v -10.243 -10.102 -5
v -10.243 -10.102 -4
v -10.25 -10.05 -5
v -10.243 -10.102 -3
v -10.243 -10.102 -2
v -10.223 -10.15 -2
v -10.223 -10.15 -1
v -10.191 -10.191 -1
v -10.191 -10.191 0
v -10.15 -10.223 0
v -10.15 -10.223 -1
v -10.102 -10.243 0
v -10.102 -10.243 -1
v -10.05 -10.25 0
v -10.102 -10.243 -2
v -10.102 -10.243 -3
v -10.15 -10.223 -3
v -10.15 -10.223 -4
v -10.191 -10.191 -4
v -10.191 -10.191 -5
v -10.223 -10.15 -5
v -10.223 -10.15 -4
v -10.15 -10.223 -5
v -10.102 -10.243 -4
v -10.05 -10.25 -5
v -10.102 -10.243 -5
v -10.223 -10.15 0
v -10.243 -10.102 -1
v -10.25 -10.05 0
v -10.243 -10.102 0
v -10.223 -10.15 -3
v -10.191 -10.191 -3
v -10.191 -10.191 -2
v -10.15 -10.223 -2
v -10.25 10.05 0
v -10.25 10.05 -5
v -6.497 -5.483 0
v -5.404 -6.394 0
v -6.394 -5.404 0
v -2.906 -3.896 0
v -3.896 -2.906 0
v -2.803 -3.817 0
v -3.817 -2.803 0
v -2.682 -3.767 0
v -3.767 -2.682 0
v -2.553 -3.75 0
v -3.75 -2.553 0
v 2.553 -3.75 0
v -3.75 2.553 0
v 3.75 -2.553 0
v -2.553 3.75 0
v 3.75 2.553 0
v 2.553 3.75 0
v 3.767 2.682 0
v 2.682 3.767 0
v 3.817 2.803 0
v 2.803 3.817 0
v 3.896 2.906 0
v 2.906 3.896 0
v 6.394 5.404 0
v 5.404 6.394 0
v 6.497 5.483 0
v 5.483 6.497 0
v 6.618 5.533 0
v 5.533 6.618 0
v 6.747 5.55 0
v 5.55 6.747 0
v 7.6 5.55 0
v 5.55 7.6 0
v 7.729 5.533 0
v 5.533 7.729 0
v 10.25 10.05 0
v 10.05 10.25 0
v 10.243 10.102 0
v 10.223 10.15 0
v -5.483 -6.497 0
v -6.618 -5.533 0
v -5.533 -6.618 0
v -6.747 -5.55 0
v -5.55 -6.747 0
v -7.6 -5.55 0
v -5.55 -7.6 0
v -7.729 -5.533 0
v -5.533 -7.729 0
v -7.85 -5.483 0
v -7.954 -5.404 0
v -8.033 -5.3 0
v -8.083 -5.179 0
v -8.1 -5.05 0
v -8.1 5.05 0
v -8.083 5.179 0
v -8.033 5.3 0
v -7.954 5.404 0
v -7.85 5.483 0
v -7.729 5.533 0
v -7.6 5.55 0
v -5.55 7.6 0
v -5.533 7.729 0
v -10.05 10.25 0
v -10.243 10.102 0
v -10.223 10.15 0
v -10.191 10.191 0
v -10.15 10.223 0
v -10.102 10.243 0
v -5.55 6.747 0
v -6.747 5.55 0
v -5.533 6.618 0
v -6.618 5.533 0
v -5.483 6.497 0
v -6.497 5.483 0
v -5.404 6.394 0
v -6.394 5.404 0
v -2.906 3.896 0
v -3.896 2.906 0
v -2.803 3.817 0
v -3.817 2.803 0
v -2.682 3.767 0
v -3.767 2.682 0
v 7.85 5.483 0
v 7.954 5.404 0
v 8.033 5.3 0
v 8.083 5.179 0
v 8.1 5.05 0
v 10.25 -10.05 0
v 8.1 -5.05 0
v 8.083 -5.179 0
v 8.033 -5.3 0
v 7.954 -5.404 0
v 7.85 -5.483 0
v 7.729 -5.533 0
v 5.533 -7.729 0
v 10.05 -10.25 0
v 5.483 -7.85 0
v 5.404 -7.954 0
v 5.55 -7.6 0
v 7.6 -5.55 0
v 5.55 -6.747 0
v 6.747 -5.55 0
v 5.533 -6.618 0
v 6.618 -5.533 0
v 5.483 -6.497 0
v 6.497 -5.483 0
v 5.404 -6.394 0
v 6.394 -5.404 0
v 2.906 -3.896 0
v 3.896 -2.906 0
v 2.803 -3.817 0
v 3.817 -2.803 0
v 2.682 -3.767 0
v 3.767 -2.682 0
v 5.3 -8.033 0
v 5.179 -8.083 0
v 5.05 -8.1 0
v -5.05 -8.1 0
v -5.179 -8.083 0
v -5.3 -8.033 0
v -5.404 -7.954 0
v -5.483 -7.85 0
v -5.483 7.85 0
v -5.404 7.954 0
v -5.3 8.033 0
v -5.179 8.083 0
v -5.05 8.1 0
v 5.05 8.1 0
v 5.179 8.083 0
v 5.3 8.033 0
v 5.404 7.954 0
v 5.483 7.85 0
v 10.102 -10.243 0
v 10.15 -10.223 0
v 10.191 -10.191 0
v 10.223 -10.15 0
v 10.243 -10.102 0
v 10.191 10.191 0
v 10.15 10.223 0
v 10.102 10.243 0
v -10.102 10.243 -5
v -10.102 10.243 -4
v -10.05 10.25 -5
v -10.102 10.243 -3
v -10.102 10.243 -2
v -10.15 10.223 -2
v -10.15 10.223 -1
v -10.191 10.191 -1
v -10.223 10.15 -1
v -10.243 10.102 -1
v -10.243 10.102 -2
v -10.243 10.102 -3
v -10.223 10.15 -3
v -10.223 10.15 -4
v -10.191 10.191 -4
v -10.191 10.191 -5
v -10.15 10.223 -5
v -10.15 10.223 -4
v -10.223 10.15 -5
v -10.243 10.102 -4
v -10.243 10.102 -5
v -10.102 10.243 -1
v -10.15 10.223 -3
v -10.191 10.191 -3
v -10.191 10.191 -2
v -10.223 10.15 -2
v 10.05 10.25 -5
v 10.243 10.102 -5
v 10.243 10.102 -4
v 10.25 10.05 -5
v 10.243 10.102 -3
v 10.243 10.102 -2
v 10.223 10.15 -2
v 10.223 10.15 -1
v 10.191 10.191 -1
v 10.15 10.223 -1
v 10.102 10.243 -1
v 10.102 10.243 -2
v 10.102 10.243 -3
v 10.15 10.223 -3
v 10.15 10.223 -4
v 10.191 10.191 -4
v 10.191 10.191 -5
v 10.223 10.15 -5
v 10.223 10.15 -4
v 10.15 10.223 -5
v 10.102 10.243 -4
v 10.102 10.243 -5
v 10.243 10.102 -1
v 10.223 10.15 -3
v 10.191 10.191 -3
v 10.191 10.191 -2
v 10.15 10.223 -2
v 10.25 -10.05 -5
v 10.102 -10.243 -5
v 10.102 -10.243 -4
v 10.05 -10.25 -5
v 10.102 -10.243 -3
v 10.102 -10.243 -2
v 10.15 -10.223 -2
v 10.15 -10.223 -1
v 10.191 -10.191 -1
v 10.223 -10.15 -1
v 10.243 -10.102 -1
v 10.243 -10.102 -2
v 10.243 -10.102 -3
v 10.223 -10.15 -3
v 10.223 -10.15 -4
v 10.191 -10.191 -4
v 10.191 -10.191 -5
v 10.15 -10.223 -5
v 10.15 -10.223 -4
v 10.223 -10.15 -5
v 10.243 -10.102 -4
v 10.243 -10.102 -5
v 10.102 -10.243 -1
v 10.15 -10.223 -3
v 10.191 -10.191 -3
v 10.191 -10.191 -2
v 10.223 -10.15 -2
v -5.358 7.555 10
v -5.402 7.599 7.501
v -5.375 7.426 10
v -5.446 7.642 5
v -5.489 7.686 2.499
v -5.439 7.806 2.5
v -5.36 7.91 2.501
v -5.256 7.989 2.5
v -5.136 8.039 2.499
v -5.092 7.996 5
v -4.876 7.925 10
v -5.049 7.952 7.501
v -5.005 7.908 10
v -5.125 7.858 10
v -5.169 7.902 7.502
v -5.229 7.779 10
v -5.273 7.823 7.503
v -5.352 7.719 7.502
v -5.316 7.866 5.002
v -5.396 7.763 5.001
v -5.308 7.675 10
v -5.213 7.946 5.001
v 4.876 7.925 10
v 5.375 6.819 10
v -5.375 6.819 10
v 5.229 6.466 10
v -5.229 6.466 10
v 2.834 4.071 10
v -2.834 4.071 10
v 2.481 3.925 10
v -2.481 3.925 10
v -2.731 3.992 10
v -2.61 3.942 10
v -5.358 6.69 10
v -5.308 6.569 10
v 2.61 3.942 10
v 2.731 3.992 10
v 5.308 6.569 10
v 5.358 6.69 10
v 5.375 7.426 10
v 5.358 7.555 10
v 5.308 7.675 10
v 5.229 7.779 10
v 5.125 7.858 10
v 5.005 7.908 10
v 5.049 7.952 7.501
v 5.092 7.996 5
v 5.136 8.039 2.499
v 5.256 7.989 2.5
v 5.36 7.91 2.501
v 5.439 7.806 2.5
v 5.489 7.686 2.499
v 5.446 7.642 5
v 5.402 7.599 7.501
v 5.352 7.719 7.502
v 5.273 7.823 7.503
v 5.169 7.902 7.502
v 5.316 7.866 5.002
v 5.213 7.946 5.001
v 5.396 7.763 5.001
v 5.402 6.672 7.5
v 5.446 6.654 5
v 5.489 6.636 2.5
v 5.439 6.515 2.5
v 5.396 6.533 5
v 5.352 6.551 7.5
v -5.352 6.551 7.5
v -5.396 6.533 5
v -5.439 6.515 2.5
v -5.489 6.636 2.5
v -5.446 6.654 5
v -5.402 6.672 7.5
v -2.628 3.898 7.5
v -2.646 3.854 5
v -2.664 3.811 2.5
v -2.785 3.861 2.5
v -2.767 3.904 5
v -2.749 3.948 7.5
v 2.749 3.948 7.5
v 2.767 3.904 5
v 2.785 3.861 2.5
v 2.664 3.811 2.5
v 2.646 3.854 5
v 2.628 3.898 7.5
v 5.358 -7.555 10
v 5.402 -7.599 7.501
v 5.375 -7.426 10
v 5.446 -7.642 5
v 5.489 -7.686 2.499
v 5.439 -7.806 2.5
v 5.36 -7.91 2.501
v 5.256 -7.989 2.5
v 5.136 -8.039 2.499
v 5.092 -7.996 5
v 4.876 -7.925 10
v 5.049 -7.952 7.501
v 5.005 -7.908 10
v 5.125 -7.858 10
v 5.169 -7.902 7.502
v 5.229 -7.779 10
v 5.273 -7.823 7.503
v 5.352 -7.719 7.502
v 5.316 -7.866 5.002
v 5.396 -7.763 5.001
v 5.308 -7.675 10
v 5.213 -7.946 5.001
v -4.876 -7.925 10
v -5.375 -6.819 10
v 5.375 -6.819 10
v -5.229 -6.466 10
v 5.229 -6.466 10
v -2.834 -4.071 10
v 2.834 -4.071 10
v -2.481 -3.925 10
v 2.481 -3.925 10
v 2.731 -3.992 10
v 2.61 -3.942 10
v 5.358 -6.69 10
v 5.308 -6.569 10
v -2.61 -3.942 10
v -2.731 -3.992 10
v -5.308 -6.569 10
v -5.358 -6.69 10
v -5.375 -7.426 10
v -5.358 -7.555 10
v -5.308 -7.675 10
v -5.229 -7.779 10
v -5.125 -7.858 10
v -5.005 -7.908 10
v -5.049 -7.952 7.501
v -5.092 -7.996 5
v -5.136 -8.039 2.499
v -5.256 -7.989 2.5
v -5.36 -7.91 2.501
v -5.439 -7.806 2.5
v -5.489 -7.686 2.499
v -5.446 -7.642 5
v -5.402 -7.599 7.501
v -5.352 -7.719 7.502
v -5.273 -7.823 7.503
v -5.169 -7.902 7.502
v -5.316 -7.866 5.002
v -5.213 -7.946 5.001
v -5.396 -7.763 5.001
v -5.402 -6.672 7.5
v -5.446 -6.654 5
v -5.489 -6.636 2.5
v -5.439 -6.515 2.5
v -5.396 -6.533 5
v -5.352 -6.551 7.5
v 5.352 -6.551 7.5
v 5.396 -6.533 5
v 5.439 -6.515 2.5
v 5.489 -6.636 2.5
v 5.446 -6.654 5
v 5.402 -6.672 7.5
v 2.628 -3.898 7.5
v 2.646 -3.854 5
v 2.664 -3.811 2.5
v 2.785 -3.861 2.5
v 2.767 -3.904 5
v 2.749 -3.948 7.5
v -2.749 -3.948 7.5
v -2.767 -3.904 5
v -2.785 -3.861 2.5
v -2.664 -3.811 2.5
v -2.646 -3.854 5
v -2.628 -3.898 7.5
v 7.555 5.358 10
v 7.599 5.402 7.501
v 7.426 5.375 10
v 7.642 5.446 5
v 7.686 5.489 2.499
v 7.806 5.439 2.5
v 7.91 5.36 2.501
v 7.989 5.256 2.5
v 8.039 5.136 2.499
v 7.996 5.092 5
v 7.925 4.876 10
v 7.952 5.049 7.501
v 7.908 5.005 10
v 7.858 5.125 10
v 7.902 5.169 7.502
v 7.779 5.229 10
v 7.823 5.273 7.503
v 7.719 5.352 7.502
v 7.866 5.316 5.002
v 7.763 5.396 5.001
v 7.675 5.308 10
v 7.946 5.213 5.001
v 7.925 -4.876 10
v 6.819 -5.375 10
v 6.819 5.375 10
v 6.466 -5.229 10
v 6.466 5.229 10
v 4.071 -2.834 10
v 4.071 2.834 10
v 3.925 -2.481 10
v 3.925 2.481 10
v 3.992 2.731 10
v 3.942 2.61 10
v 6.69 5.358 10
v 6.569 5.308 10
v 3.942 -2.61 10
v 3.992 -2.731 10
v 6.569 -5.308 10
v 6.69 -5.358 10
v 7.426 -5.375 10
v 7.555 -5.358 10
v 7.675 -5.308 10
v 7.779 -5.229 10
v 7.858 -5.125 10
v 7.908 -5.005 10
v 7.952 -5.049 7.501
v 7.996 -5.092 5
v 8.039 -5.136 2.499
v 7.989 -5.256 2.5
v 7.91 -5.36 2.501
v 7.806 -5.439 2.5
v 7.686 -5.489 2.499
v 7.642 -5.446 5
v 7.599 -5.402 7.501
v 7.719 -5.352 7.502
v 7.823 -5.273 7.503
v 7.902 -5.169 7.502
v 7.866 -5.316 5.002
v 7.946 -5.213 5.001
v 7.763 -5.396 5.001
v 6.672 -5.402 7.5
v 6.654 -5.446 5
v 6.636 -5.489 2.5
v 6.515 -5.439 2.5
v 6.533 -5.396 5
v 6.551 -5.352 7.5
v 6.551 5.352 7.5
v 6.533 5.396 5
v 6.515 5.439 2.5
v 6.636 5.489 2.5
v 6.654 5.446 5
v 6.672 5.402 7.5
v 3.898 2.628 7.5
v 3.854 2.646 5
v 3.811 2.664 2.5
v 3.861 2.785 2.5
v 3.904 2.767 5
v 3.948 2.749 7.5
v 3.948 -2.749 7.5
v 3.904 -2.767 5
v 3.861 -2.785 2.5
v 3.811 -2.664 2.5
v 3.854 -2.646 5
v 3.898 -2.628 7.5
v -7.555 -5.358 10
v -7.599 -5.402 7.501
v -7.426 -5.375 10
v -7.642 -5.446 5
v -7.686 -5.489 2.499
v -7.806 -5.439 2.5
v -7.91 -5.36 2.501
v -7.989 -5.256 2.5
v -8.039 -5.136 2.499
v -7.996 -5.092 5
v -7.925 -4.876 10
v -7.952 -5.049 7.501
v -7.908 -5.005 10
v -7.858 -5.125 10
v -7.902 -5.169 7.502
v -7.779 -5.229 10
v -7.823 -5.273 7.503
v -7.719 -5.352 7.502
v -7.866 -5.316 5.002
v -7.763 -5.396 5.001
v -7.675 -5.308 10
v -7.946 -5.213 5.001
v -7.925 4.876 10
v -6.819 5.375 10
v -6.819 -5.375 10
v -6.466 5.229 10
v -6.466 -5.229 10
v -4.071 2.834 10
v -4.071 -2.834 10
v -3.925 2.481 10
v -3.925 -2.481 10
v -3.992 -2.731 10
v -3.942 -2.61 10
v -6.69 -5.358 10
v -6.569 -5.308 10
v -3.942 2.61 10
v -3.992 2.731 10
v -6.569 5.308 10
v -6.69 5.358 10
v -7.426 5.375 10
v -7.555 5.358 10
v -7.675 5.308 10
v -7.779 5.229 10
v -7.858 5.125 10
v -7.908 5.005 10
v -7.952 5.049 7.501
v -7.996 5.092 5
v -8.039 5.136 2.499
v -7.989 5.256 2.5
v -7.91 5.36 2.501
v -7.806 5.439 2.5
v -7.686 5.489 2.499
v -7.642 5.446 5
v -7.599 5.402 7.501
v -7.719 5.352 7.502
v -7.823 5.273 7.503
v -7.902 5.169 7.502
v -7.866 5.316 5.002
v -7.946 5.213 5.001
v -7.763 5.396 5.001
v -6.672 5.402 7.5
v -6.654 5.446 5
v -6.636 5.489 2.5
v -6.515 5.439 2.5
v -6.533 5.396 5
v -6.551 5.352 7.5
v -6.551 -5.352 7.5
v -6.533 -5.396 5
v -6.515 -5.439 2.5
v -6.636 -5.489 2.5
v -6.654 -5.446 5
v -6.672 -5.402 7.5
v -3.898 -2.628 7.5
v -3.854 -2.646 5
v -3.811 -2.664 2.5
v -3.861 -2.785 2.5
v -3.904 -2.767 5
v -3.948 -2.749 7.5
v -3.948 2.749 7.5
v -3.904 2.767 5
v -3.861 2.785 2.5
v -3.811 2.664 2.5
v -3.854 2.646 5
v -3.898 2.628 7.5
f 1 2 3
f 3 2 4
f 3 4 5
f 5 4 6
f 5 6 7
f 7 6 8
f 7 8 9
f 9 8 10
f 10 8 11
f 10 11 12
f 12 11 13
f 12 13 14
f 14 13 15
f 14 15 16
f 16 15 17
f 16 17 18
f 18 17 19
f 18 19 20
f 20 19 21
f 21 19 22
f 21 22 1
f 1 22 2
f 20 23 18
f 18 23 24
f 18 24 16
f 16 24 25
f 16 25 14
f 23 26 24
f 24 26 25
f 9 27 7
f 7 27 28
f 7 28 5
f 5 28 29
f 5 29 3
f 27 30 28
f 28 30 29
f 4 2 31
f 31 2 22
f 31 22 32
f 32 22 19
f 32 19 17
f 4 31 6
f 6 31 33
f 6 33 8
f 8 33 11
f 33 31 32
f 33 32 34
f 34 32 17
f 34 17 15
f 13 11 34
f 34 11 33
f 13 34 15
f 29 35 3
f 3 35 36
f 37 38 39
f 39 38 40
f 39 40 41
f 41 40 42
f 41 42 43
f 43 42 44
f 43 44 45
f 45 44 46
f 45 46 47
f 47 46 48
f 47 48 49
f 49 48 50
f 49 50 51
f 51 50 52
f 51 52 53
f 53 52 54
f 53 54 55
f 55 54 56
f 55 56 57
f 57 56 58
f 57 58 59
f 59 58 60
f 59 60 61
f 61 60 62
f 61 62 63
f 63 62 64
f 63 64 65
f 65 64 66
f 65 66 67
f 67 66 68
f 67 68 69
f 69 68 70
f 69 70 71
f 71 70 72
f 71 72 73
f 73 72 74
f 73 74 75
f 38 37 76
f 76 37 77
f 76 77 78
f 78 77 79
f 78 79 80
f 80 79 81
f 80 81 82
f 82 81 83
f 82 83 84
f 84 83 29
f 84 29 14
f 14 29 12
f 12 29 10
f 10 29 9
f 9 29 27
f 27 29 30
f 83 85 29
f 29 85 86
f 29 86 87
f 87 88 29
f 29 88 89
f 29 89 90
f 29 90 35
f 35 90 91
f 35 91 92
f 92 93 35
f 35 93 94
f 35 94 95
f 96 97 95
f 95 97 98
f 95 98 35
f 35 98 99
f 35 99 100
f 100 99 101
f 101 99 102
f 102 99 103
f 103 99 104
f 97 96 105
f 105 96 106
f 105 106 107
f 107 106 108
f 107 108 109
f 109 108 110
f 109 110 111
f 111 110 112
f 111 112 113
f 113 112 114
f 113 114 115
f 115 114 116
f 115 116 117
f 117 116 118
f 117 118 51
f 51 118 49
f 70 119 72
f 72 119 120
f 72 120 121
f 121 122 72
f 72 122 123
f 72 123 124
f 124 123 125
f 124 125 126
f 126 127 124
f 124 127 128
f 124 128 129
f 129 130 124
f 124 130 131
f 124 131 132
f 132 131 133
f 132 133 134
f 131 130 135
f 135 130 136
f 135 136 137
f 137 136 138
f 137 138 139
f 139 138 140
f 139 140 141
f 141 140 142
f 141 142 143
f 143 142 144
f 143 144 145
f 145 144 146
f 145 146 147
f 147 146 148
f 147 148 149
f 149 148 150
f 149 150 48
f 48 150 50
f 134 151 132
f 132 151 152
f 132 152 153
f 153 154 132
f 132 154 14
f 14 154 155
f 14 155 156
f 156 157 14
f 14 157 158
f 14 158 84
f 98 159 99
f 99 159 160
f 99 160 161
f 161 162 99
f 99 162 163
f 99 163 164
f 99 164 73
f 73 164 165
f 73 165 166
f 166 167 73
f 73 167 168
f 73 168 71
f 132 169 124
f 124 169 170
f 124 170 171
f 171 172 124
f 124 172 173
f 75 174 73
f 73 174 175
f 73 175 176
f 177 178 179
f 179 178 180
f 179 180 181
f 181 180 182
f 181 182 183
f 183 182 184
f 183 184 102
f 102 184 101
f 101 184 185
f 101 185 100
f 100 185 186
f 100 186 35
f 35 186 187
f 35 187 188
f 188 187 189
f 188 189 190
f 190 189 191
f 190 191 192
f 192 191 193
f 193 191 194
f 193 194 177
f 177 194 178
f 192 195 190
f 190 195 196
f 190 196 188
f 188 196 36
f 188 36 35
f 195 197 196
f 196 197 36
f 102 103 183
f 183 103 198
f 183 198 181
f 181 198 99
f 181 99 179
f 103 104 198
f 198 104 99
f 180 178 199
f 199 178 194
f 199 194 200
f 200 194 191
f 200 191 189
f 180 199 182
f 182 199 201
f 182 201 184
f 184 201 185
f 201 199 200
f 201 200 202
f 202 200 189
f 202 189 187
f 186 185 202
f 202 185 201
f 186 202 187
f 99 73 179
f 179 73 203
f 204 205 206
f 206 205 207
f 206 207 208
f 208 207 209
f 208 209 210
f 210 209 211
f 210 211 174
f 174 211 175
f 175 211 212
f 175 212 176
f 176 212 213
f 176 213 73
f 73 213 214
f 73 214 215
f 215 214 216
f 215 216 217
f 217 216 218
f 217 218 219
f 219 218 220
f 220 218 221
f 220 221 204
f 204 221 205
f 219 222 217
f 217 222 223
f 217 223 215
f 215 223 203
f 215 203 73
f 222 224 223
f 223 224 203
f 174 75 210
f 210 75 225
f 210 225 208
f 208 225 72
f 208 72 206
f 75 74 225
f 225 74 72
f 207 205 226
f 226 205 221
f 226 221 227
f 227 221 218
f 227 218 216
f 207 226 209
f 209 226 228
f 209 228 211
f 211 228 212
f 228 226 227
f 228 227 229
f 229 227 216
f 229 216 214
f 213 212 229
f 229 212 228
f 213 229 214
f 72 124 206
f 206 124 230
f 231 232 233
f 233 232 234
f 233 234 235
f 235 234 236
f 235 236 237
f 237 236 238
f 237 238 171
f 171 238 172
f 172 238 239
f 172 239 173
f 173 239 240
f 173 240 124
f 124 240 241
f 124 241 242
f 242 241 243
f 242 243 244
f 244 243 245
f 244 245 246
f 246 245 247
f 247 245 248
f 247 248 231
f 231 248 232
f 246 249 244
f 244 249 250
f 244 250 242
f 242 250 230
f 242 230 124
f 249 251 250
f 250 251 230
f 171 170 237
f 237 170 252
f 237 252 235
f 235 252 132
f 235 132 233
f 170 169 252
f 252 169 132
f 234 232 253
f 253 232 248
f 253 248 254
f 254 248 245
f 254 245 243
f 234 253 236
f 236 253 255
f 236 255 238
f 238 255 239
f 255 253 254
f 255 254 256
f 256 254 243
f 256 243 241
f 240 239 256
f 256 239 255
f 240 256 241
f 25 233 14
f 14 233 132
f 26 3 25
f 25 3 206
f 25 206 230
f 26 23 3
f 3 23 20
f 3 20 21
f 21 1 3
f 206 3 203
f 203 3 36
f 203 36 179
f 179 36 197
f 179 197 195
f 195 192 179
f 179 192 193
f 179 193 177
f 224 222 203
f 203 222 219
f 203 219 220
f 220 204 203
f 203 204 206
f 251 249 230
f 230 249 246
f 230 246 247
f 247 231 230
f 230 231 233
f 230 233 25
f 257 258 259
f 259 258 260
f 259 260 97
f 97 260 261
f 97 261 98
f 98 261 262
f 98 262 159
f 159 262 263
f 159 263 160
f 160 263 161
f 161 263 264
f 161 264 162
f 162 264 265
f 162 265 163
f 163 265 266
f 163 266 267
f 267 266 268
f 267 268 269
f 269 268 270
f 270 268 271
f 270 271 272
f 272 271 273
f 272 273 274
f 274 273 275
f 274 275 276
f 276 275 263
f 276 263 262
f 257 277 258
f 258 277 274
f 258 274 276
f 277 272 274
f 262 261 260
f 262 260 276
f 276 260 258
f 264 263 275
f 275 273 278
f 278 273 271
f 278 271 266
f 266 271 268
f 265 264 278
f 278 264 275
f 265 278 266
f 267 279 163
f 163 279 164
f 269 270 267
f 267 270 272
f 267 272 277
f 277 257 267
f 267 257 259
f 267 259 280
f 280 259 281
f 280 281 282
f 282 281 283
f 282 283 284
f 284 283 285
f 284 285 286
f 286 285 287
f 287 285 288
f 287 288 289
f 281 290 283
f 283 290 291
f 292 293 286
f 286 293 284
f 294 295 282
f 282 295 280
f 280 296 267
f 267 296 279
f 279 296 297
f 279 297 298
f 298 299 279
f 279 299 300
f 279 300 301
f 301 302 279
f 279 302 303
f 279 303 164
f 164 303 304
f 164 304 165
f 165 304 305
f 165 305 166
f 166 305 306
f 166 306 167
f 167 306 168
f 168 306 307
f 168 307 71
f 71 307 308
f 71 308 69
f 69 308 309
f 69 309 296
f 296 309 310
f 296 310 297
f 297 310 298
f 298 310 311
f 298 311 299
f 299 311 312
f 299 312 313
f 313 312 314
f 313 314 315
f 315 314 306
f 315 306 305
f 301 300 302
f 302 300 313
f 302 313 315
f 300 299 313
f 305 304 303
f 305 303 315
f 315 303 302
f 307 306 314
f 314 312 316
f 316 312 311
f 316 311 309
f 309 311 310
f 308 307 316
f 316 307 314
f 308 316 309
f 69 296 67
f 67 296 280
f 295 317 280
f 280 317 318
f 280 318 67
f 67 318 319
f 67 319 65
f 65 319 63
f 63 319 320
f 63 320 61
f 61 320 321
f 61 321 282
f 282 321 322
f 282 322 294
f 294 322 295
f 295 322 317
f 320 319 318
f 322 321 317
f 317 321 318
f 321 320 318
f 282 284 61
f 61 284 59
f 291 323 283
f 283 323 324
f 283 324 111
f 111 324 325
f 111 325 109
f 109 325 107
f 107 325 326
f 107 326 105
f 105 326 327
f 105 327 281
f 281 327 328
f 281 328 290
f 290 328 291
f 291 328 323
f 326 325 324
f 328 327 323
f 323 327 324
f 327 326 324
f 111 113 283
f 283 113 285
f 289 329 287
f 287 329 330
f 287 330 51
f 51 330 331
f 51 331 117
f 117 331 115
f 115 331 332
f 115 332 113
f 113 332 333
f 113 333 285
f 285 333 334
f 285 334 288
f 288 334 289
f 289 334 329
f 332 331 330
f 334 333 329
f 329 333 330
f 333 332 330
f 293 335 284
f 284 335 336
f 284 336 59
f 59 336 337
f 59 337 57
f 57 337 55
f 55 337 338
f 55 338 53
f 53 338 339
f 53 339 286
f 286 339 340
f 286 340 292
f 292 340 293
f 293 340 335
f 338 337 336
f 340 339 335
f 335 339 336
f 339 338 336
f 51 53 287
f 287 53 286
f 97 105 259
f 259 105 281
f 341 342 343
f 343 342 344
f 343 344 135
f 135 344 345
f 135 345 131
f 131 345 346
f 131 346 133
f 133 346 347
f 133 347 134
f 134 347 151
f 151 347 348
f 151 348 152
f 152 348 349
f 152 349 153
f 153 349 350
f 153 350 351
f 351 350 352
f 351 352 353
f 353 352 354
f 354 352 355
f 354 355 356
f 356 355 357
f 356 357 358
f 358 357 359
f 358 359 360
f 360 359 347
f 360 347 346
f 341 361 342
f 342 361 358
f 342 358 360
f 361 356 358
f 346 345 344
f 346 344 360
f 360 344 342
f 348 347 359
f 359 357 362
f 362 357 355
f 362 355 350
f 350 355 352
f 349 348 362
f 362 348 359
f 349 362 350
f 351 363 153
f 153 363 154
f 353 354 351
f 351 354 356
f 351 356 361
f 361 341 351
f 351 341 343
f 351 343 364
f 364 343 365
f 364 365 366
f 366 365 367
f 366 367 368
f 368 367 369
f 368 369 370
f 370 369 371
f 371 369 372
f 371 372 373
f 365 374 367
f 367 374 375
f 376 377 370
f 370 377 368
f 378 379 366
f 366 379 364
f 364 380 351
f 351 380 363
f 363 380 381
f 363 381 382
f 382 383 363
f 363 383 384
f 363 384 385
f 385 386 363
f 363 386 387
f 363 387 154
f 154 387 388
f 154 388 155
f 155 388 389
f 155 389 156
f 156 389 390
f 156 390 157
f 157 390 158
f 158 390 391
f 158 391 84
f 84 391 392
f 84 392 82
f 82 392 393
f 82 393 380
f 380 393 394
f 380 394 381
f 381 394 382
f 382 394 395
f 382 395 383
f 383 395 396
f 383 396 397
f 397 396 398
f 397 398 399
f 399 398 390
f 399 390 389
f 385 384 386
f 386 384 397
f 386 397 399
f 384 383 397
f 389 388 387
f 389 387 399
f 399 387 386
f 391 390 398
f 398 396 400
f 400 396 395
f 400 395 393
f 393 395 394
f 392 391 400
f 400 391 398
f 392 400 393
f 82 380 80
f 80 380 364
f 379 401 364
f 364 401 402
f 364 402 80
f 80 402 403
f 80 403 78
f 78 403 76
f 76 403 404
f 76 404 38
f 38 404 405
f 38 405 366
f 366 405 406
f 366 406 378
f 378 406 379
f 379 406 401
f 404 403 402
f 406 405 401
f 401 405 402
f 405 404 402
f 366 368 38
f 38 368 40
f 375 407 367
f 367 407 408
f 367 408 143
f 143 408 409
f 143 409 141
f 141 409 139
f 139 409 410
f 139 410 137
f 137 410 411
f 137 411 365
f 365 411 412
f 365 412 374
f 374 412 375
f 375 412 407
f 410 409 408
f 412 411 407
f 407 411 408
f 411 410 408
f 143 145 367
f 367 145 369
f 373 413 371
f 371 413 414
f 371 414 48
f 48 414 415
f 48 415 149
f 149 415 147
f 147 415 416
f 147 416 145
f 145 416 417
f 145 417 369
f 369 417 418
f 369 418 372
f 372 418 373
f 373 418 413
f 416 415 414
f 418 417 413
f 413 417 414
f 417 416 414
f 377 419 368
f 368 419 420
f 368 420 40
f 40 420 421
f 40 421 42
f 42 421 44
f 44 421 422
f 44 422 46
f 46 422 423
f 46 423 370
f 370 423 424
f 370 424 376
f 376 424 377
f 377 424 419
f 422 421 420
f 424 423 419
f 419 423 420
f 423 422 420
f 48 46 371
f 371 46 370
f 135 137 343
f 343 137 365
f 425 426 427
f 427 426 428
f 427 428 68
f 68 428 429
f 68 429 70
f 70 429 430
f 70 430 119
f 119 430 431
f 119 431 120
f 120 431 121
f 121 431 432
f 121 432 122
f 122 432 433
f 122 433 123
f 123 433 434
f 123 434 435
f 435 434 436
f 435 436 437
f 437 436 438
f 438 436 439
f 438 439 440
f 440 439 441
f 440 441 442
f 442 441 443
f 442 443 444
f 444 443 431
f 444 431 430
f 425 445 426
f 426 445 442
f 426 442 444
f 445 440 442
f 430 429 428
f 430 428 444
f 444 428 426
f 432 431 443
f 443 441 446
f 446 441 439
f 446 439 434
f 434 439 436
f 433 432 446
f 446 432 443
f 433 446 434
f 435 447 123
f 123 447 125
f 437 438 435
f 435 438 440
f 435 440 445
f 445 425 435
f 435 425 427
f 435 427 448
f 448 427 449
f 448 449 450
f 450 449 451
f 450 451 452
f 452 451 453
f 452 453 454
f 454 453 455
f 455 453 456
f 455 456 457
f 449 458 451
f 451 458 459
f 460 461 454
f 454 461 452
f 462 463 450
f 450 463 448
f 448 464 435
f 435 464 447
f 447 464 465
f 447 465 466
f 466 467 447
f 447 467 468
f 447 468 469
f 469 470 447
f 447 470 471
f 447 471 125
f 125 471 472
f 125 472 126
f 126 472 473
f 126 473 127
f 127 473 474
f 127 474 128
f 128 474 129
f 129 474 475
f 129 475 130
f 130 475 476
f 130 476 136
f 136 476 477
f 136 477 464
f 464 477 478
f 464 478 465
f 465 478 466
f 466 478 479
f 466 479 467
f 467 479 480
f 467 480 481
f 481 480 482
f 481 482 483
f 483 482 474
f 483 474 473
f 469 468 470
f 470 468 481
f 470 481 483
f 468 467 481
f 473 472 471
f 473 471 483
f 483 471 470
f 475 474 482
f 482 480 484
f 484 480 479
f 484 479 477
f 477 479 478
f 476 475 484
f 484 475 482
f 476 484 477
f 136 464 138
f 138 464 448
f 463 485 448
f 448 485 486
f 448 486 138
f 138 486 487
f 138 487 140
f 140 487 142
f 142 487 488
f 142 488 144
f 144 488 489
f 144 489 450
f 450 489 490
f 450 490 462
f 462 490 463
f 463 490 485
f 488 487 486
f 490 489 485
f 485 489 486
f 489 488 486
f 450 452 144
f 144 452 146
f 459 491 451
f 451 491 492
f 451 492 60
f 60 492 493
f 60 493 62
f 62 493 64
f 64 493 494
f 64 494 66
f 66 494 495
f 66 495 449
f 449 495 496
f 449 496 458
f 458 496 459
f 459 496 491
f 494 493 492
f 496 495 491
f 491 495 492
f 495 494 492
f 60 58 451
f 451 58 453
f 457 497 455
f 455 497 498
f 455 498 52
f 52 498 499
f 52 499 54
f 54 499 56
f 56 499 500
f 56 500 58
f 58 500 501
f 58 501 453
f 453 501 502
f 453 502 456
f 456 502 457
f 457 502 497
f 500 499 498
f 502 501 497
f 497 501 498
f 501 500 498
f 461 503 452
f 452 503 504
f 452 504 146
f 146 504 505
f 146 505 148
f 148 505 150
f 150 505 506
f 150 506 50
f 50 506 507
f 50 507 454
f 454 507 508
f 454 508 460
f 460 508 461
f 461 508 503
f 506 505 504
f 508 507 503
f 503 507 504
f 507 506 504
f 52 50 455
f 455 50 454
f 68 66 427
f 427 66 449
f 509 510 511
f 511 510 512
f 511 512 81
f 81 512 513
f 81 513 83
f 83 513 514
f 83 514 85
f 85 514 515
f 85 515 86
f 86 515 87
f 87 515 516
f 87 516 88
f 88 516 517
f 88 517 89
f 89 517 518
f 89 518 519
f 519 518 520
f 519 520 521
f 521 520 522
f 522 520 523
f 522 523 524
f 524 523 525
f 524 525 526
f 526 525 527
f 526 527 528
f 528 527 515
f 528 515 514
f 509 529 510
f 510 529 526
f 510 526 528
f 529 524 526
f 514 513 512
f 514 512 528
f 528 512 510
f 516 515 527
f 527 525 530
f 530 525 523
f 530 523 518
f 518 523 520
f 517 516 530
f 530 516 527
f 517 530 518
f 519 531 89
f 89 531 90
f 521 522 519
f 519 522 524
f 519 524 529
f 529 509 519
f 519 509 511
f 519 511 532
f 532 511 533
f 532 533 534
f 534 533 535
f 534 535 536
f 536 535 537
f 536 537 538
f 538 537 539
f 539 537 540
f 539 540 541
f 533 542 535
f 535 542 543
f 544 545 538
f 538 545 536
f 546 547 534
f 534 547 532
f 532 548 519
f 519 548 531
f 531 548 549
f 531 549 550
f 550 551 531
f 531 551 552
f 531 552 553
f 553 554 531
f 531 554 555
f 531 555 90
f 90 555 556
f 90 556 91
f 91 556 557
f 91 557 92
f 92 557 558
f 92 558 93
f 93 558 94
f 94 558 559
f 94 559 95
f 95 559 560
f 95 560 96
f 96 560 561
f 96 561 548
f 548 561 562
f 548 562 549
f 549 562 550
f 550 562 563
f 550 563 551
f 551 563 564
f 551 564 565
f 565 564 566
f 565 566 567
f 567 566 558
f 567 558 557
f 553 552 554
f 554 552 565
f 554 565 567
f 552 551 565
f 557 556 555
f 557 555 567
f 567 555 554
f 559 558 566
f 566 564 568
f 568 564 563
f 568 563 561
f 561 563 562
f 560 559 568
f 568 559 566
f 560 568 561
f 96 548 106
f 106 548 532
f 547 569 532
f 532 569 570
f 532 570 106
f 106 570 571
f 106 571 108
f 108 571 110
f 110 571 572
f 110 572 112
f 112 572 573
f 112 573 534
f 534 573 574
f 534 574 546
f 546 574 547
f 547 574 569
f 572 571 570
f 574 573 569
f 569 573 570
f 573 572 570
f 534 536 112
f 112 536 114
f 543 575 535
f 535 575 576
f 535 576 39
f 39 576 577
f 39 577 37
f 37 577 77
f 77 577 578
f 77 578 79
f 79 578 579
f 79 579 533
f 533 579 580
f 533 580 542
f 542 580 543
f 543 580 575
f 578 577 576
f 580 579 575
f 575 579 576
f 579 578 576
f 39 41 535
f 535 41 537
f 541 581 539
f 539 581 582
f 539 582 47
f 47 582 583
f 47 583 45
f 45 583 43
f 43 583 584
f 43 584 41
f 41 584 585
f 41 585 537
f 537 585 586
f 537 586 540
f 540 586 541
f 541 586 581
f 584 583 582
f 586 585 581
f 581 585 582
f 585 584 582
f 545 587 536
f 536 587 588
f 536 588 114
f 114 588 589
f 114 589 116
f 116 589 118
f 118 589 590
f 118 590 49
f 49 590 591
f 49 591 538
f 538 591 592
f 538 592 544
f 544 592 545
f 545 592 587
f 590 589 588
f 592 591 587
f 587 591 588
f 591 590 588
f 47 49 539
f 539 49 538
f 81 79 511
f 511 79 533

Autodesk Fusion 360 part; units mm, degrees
ref_plane "WorkPlane1" through (0, 0, 0) normal (0, 0, 1) x (1, 0, 0)
sketch "Sketch1" plane through (0, 0, 0) normal (0, 0, 1) x (1, 0, 0)
  line L0 (10.25, 10.25) -> (-10.25, 10.25)
  line L1 (-10.25, 10.25) -> (-10.25, -10.25)
  line L2 (-10.25, -10.25) -> (10.25, -10.25)
  line L3 (10.25, -10.25) -> (10.25, 10.25)
  line L4 (10.25, 10.25) -> (-10.25, -10.25) construction
  line L5 (-10.25, 10.25) -> (10.25, -10.25) construction
  line L6 (3.75, 3.75) -> (-3.75, 3.75)
  line L7 (-3.75, 3.75) -> (-3.75, -3.75)
  line L8 (-3.75, -3.75) -> (3.75, -3.75)
  line L9 (3.75, -3.75) -> (3.75, 3.75)
  line L10 (3.75, 3.75) -> (-3.75, -3.75) construction
  line L11 (-3.75, 3.75) -> (3.75, -3.75) construction
  line L12 (8.1, 8.1) -> (-8.1, 8.1)
  line L13 (-8.1, 8.1) -> (-8.1, -8.1)
  line L14 (-8.1, -8.1) -> (8.1, -8.1)
  line L15 (8.1, -8.1) -> (8.1, 8.1)
  line L16 (8.1, 8.1) -> (-8.1, -8.1) construction
  line L17 (-8.1, 8.1) -> (8.1, -8.1) construction
  line L18 (10.25, 10.25) -> (5.55, 10.25)
  line L19 (5.55, 10.25) -> (5.55, 5.55)
  line L20 (5.55, 5.55) -> (10.25, 5.55)
  line L21 (10.25, 5.55) -> (10.25, 10.25)
  line L22 (2.7601, 3.75) -> (5.55, 6.5399)
  line L23 (3.75, 2.7601) -> (6.5399, 5.55)
  line L24 (4.155, 5.145) -> (5.145, 4.155)
  line L25 (-5.55, 5.55) -> (-5.55, 10.25)
  line L26 (-10.25, 5.55) -> (-5.55, 5.55)
  line L27 (-3.75, 2.7601) -> (-6.5399, 5.55)
  line L28 (-2.7601, 3.75) -> (-5.55, 6.5399)
  line L29 (-5.55, -5.55) -> (-10.25, -5.55)
  line L30 (-5.55, -10.25) -> (-5.55, -5.55)
  line L31 (-2.7601, -3.75) -> (-5.55, -6.5399)
  line L32 (-3.75, -2.7601) -> (-6.5399, -5.55)
  line L33 (5.55, -5.55) -> (5.55, -10.25)
  line L34 (10.25, -5.55) -> (5.55, -5.55)
  line L35 (3.75, -2.7601) -> (6.5399, -5.55)
  line L36 (2.7601, -3.75) -> (5.55, -6.5399)
  point P0 (4.65, 4.65)
  dimension "d2" = 20.5
  dimension "d3" = 20.5
  dimension "d4" = 7.5
  dimension "d5" = 7.5
  dimension "d6" = 16.2
  dimension "d7" = 16.2
  dimension "d8" = 4.7
  dimension "d9" = 4.7
  dimension "d10" = 1.4
  dimension "d12" = 360
extrude "Extrude1" add sketch "Sketch1" against normal blind 5 makes body 1
extrude "Extrude2" add sketch "Sketch1" along normal blind 10 draft -1 separate body contours L6 L12 L19 L22 L25 L28 makes body 2
sketch "Sketch2" plane through (0, 0, -5) normal (0, 0, -1) x (1, 0, 0)
  line L0 (10.25, -10.25) -> (10.25, 10.25)
  line L1 (10.25, 10.25) -> (-10.25, 10.25)
  line L2 (-10.25, 10.25) -> (-10.25, -10.25)
  line L3 (-10.25, -10.25) -> (10.25, -10.25)
  circle A0 centre (0, 0) radius 2.1
  line L4 (2.0063, 3.475) -> (-2.0063, 3.475)
  line L5 (-2.0063, 3.475) -> (-4.0126, 0)
  line L6 (-4.0126, 0) -> (-2.0063, -3.475)
  line L7 (-2.0063, -3.475) -> (2.0063, -3.475)
  line L8 (2.0063, -3.475) -> (4.0126, 0)
  line L9 (4.0126, 0) -> (2.0063, 3.475)
  dimension "d17" = 4.2
  dimension "d18" = 3.475
fillet "Fillet1" radius 0.5 6 edges at (2.7239, 3.8373, 5) (-2.7239, 3.8373, 5) (-5.4627, 6.5761, 5) (5.4627, 6.5761, 5) (5.4627, 8.0127, 5) (-5.4627, 8.0127, 5) on bodies 2
pattern_circular "C-Pattern1" count 4 over 360 about axis through (0, 0, 1.75) along (0, 0, 1) of bodies 2 makes body 3 at (-8.0418, 1.6252, 3.3333) makes body 4 at (-1.6252, -8.0418, 3.3333) makes body 5 at (8.0418, -1.6252, 3.3333)
combine "Combine1" operation add target body 5 tool bodies 4 3 2 1
fillet "Fillet2" radius 0.2 4 edges at (10.25, -10.25, -2.5) (10.25, 10.25, -2.5) (-10.25, 10.25, -2.5) (-10.25, -10.25, -2.5) on bodies 5
equation "d18 = ( 6.95 / 2 ) * 1 mm"
